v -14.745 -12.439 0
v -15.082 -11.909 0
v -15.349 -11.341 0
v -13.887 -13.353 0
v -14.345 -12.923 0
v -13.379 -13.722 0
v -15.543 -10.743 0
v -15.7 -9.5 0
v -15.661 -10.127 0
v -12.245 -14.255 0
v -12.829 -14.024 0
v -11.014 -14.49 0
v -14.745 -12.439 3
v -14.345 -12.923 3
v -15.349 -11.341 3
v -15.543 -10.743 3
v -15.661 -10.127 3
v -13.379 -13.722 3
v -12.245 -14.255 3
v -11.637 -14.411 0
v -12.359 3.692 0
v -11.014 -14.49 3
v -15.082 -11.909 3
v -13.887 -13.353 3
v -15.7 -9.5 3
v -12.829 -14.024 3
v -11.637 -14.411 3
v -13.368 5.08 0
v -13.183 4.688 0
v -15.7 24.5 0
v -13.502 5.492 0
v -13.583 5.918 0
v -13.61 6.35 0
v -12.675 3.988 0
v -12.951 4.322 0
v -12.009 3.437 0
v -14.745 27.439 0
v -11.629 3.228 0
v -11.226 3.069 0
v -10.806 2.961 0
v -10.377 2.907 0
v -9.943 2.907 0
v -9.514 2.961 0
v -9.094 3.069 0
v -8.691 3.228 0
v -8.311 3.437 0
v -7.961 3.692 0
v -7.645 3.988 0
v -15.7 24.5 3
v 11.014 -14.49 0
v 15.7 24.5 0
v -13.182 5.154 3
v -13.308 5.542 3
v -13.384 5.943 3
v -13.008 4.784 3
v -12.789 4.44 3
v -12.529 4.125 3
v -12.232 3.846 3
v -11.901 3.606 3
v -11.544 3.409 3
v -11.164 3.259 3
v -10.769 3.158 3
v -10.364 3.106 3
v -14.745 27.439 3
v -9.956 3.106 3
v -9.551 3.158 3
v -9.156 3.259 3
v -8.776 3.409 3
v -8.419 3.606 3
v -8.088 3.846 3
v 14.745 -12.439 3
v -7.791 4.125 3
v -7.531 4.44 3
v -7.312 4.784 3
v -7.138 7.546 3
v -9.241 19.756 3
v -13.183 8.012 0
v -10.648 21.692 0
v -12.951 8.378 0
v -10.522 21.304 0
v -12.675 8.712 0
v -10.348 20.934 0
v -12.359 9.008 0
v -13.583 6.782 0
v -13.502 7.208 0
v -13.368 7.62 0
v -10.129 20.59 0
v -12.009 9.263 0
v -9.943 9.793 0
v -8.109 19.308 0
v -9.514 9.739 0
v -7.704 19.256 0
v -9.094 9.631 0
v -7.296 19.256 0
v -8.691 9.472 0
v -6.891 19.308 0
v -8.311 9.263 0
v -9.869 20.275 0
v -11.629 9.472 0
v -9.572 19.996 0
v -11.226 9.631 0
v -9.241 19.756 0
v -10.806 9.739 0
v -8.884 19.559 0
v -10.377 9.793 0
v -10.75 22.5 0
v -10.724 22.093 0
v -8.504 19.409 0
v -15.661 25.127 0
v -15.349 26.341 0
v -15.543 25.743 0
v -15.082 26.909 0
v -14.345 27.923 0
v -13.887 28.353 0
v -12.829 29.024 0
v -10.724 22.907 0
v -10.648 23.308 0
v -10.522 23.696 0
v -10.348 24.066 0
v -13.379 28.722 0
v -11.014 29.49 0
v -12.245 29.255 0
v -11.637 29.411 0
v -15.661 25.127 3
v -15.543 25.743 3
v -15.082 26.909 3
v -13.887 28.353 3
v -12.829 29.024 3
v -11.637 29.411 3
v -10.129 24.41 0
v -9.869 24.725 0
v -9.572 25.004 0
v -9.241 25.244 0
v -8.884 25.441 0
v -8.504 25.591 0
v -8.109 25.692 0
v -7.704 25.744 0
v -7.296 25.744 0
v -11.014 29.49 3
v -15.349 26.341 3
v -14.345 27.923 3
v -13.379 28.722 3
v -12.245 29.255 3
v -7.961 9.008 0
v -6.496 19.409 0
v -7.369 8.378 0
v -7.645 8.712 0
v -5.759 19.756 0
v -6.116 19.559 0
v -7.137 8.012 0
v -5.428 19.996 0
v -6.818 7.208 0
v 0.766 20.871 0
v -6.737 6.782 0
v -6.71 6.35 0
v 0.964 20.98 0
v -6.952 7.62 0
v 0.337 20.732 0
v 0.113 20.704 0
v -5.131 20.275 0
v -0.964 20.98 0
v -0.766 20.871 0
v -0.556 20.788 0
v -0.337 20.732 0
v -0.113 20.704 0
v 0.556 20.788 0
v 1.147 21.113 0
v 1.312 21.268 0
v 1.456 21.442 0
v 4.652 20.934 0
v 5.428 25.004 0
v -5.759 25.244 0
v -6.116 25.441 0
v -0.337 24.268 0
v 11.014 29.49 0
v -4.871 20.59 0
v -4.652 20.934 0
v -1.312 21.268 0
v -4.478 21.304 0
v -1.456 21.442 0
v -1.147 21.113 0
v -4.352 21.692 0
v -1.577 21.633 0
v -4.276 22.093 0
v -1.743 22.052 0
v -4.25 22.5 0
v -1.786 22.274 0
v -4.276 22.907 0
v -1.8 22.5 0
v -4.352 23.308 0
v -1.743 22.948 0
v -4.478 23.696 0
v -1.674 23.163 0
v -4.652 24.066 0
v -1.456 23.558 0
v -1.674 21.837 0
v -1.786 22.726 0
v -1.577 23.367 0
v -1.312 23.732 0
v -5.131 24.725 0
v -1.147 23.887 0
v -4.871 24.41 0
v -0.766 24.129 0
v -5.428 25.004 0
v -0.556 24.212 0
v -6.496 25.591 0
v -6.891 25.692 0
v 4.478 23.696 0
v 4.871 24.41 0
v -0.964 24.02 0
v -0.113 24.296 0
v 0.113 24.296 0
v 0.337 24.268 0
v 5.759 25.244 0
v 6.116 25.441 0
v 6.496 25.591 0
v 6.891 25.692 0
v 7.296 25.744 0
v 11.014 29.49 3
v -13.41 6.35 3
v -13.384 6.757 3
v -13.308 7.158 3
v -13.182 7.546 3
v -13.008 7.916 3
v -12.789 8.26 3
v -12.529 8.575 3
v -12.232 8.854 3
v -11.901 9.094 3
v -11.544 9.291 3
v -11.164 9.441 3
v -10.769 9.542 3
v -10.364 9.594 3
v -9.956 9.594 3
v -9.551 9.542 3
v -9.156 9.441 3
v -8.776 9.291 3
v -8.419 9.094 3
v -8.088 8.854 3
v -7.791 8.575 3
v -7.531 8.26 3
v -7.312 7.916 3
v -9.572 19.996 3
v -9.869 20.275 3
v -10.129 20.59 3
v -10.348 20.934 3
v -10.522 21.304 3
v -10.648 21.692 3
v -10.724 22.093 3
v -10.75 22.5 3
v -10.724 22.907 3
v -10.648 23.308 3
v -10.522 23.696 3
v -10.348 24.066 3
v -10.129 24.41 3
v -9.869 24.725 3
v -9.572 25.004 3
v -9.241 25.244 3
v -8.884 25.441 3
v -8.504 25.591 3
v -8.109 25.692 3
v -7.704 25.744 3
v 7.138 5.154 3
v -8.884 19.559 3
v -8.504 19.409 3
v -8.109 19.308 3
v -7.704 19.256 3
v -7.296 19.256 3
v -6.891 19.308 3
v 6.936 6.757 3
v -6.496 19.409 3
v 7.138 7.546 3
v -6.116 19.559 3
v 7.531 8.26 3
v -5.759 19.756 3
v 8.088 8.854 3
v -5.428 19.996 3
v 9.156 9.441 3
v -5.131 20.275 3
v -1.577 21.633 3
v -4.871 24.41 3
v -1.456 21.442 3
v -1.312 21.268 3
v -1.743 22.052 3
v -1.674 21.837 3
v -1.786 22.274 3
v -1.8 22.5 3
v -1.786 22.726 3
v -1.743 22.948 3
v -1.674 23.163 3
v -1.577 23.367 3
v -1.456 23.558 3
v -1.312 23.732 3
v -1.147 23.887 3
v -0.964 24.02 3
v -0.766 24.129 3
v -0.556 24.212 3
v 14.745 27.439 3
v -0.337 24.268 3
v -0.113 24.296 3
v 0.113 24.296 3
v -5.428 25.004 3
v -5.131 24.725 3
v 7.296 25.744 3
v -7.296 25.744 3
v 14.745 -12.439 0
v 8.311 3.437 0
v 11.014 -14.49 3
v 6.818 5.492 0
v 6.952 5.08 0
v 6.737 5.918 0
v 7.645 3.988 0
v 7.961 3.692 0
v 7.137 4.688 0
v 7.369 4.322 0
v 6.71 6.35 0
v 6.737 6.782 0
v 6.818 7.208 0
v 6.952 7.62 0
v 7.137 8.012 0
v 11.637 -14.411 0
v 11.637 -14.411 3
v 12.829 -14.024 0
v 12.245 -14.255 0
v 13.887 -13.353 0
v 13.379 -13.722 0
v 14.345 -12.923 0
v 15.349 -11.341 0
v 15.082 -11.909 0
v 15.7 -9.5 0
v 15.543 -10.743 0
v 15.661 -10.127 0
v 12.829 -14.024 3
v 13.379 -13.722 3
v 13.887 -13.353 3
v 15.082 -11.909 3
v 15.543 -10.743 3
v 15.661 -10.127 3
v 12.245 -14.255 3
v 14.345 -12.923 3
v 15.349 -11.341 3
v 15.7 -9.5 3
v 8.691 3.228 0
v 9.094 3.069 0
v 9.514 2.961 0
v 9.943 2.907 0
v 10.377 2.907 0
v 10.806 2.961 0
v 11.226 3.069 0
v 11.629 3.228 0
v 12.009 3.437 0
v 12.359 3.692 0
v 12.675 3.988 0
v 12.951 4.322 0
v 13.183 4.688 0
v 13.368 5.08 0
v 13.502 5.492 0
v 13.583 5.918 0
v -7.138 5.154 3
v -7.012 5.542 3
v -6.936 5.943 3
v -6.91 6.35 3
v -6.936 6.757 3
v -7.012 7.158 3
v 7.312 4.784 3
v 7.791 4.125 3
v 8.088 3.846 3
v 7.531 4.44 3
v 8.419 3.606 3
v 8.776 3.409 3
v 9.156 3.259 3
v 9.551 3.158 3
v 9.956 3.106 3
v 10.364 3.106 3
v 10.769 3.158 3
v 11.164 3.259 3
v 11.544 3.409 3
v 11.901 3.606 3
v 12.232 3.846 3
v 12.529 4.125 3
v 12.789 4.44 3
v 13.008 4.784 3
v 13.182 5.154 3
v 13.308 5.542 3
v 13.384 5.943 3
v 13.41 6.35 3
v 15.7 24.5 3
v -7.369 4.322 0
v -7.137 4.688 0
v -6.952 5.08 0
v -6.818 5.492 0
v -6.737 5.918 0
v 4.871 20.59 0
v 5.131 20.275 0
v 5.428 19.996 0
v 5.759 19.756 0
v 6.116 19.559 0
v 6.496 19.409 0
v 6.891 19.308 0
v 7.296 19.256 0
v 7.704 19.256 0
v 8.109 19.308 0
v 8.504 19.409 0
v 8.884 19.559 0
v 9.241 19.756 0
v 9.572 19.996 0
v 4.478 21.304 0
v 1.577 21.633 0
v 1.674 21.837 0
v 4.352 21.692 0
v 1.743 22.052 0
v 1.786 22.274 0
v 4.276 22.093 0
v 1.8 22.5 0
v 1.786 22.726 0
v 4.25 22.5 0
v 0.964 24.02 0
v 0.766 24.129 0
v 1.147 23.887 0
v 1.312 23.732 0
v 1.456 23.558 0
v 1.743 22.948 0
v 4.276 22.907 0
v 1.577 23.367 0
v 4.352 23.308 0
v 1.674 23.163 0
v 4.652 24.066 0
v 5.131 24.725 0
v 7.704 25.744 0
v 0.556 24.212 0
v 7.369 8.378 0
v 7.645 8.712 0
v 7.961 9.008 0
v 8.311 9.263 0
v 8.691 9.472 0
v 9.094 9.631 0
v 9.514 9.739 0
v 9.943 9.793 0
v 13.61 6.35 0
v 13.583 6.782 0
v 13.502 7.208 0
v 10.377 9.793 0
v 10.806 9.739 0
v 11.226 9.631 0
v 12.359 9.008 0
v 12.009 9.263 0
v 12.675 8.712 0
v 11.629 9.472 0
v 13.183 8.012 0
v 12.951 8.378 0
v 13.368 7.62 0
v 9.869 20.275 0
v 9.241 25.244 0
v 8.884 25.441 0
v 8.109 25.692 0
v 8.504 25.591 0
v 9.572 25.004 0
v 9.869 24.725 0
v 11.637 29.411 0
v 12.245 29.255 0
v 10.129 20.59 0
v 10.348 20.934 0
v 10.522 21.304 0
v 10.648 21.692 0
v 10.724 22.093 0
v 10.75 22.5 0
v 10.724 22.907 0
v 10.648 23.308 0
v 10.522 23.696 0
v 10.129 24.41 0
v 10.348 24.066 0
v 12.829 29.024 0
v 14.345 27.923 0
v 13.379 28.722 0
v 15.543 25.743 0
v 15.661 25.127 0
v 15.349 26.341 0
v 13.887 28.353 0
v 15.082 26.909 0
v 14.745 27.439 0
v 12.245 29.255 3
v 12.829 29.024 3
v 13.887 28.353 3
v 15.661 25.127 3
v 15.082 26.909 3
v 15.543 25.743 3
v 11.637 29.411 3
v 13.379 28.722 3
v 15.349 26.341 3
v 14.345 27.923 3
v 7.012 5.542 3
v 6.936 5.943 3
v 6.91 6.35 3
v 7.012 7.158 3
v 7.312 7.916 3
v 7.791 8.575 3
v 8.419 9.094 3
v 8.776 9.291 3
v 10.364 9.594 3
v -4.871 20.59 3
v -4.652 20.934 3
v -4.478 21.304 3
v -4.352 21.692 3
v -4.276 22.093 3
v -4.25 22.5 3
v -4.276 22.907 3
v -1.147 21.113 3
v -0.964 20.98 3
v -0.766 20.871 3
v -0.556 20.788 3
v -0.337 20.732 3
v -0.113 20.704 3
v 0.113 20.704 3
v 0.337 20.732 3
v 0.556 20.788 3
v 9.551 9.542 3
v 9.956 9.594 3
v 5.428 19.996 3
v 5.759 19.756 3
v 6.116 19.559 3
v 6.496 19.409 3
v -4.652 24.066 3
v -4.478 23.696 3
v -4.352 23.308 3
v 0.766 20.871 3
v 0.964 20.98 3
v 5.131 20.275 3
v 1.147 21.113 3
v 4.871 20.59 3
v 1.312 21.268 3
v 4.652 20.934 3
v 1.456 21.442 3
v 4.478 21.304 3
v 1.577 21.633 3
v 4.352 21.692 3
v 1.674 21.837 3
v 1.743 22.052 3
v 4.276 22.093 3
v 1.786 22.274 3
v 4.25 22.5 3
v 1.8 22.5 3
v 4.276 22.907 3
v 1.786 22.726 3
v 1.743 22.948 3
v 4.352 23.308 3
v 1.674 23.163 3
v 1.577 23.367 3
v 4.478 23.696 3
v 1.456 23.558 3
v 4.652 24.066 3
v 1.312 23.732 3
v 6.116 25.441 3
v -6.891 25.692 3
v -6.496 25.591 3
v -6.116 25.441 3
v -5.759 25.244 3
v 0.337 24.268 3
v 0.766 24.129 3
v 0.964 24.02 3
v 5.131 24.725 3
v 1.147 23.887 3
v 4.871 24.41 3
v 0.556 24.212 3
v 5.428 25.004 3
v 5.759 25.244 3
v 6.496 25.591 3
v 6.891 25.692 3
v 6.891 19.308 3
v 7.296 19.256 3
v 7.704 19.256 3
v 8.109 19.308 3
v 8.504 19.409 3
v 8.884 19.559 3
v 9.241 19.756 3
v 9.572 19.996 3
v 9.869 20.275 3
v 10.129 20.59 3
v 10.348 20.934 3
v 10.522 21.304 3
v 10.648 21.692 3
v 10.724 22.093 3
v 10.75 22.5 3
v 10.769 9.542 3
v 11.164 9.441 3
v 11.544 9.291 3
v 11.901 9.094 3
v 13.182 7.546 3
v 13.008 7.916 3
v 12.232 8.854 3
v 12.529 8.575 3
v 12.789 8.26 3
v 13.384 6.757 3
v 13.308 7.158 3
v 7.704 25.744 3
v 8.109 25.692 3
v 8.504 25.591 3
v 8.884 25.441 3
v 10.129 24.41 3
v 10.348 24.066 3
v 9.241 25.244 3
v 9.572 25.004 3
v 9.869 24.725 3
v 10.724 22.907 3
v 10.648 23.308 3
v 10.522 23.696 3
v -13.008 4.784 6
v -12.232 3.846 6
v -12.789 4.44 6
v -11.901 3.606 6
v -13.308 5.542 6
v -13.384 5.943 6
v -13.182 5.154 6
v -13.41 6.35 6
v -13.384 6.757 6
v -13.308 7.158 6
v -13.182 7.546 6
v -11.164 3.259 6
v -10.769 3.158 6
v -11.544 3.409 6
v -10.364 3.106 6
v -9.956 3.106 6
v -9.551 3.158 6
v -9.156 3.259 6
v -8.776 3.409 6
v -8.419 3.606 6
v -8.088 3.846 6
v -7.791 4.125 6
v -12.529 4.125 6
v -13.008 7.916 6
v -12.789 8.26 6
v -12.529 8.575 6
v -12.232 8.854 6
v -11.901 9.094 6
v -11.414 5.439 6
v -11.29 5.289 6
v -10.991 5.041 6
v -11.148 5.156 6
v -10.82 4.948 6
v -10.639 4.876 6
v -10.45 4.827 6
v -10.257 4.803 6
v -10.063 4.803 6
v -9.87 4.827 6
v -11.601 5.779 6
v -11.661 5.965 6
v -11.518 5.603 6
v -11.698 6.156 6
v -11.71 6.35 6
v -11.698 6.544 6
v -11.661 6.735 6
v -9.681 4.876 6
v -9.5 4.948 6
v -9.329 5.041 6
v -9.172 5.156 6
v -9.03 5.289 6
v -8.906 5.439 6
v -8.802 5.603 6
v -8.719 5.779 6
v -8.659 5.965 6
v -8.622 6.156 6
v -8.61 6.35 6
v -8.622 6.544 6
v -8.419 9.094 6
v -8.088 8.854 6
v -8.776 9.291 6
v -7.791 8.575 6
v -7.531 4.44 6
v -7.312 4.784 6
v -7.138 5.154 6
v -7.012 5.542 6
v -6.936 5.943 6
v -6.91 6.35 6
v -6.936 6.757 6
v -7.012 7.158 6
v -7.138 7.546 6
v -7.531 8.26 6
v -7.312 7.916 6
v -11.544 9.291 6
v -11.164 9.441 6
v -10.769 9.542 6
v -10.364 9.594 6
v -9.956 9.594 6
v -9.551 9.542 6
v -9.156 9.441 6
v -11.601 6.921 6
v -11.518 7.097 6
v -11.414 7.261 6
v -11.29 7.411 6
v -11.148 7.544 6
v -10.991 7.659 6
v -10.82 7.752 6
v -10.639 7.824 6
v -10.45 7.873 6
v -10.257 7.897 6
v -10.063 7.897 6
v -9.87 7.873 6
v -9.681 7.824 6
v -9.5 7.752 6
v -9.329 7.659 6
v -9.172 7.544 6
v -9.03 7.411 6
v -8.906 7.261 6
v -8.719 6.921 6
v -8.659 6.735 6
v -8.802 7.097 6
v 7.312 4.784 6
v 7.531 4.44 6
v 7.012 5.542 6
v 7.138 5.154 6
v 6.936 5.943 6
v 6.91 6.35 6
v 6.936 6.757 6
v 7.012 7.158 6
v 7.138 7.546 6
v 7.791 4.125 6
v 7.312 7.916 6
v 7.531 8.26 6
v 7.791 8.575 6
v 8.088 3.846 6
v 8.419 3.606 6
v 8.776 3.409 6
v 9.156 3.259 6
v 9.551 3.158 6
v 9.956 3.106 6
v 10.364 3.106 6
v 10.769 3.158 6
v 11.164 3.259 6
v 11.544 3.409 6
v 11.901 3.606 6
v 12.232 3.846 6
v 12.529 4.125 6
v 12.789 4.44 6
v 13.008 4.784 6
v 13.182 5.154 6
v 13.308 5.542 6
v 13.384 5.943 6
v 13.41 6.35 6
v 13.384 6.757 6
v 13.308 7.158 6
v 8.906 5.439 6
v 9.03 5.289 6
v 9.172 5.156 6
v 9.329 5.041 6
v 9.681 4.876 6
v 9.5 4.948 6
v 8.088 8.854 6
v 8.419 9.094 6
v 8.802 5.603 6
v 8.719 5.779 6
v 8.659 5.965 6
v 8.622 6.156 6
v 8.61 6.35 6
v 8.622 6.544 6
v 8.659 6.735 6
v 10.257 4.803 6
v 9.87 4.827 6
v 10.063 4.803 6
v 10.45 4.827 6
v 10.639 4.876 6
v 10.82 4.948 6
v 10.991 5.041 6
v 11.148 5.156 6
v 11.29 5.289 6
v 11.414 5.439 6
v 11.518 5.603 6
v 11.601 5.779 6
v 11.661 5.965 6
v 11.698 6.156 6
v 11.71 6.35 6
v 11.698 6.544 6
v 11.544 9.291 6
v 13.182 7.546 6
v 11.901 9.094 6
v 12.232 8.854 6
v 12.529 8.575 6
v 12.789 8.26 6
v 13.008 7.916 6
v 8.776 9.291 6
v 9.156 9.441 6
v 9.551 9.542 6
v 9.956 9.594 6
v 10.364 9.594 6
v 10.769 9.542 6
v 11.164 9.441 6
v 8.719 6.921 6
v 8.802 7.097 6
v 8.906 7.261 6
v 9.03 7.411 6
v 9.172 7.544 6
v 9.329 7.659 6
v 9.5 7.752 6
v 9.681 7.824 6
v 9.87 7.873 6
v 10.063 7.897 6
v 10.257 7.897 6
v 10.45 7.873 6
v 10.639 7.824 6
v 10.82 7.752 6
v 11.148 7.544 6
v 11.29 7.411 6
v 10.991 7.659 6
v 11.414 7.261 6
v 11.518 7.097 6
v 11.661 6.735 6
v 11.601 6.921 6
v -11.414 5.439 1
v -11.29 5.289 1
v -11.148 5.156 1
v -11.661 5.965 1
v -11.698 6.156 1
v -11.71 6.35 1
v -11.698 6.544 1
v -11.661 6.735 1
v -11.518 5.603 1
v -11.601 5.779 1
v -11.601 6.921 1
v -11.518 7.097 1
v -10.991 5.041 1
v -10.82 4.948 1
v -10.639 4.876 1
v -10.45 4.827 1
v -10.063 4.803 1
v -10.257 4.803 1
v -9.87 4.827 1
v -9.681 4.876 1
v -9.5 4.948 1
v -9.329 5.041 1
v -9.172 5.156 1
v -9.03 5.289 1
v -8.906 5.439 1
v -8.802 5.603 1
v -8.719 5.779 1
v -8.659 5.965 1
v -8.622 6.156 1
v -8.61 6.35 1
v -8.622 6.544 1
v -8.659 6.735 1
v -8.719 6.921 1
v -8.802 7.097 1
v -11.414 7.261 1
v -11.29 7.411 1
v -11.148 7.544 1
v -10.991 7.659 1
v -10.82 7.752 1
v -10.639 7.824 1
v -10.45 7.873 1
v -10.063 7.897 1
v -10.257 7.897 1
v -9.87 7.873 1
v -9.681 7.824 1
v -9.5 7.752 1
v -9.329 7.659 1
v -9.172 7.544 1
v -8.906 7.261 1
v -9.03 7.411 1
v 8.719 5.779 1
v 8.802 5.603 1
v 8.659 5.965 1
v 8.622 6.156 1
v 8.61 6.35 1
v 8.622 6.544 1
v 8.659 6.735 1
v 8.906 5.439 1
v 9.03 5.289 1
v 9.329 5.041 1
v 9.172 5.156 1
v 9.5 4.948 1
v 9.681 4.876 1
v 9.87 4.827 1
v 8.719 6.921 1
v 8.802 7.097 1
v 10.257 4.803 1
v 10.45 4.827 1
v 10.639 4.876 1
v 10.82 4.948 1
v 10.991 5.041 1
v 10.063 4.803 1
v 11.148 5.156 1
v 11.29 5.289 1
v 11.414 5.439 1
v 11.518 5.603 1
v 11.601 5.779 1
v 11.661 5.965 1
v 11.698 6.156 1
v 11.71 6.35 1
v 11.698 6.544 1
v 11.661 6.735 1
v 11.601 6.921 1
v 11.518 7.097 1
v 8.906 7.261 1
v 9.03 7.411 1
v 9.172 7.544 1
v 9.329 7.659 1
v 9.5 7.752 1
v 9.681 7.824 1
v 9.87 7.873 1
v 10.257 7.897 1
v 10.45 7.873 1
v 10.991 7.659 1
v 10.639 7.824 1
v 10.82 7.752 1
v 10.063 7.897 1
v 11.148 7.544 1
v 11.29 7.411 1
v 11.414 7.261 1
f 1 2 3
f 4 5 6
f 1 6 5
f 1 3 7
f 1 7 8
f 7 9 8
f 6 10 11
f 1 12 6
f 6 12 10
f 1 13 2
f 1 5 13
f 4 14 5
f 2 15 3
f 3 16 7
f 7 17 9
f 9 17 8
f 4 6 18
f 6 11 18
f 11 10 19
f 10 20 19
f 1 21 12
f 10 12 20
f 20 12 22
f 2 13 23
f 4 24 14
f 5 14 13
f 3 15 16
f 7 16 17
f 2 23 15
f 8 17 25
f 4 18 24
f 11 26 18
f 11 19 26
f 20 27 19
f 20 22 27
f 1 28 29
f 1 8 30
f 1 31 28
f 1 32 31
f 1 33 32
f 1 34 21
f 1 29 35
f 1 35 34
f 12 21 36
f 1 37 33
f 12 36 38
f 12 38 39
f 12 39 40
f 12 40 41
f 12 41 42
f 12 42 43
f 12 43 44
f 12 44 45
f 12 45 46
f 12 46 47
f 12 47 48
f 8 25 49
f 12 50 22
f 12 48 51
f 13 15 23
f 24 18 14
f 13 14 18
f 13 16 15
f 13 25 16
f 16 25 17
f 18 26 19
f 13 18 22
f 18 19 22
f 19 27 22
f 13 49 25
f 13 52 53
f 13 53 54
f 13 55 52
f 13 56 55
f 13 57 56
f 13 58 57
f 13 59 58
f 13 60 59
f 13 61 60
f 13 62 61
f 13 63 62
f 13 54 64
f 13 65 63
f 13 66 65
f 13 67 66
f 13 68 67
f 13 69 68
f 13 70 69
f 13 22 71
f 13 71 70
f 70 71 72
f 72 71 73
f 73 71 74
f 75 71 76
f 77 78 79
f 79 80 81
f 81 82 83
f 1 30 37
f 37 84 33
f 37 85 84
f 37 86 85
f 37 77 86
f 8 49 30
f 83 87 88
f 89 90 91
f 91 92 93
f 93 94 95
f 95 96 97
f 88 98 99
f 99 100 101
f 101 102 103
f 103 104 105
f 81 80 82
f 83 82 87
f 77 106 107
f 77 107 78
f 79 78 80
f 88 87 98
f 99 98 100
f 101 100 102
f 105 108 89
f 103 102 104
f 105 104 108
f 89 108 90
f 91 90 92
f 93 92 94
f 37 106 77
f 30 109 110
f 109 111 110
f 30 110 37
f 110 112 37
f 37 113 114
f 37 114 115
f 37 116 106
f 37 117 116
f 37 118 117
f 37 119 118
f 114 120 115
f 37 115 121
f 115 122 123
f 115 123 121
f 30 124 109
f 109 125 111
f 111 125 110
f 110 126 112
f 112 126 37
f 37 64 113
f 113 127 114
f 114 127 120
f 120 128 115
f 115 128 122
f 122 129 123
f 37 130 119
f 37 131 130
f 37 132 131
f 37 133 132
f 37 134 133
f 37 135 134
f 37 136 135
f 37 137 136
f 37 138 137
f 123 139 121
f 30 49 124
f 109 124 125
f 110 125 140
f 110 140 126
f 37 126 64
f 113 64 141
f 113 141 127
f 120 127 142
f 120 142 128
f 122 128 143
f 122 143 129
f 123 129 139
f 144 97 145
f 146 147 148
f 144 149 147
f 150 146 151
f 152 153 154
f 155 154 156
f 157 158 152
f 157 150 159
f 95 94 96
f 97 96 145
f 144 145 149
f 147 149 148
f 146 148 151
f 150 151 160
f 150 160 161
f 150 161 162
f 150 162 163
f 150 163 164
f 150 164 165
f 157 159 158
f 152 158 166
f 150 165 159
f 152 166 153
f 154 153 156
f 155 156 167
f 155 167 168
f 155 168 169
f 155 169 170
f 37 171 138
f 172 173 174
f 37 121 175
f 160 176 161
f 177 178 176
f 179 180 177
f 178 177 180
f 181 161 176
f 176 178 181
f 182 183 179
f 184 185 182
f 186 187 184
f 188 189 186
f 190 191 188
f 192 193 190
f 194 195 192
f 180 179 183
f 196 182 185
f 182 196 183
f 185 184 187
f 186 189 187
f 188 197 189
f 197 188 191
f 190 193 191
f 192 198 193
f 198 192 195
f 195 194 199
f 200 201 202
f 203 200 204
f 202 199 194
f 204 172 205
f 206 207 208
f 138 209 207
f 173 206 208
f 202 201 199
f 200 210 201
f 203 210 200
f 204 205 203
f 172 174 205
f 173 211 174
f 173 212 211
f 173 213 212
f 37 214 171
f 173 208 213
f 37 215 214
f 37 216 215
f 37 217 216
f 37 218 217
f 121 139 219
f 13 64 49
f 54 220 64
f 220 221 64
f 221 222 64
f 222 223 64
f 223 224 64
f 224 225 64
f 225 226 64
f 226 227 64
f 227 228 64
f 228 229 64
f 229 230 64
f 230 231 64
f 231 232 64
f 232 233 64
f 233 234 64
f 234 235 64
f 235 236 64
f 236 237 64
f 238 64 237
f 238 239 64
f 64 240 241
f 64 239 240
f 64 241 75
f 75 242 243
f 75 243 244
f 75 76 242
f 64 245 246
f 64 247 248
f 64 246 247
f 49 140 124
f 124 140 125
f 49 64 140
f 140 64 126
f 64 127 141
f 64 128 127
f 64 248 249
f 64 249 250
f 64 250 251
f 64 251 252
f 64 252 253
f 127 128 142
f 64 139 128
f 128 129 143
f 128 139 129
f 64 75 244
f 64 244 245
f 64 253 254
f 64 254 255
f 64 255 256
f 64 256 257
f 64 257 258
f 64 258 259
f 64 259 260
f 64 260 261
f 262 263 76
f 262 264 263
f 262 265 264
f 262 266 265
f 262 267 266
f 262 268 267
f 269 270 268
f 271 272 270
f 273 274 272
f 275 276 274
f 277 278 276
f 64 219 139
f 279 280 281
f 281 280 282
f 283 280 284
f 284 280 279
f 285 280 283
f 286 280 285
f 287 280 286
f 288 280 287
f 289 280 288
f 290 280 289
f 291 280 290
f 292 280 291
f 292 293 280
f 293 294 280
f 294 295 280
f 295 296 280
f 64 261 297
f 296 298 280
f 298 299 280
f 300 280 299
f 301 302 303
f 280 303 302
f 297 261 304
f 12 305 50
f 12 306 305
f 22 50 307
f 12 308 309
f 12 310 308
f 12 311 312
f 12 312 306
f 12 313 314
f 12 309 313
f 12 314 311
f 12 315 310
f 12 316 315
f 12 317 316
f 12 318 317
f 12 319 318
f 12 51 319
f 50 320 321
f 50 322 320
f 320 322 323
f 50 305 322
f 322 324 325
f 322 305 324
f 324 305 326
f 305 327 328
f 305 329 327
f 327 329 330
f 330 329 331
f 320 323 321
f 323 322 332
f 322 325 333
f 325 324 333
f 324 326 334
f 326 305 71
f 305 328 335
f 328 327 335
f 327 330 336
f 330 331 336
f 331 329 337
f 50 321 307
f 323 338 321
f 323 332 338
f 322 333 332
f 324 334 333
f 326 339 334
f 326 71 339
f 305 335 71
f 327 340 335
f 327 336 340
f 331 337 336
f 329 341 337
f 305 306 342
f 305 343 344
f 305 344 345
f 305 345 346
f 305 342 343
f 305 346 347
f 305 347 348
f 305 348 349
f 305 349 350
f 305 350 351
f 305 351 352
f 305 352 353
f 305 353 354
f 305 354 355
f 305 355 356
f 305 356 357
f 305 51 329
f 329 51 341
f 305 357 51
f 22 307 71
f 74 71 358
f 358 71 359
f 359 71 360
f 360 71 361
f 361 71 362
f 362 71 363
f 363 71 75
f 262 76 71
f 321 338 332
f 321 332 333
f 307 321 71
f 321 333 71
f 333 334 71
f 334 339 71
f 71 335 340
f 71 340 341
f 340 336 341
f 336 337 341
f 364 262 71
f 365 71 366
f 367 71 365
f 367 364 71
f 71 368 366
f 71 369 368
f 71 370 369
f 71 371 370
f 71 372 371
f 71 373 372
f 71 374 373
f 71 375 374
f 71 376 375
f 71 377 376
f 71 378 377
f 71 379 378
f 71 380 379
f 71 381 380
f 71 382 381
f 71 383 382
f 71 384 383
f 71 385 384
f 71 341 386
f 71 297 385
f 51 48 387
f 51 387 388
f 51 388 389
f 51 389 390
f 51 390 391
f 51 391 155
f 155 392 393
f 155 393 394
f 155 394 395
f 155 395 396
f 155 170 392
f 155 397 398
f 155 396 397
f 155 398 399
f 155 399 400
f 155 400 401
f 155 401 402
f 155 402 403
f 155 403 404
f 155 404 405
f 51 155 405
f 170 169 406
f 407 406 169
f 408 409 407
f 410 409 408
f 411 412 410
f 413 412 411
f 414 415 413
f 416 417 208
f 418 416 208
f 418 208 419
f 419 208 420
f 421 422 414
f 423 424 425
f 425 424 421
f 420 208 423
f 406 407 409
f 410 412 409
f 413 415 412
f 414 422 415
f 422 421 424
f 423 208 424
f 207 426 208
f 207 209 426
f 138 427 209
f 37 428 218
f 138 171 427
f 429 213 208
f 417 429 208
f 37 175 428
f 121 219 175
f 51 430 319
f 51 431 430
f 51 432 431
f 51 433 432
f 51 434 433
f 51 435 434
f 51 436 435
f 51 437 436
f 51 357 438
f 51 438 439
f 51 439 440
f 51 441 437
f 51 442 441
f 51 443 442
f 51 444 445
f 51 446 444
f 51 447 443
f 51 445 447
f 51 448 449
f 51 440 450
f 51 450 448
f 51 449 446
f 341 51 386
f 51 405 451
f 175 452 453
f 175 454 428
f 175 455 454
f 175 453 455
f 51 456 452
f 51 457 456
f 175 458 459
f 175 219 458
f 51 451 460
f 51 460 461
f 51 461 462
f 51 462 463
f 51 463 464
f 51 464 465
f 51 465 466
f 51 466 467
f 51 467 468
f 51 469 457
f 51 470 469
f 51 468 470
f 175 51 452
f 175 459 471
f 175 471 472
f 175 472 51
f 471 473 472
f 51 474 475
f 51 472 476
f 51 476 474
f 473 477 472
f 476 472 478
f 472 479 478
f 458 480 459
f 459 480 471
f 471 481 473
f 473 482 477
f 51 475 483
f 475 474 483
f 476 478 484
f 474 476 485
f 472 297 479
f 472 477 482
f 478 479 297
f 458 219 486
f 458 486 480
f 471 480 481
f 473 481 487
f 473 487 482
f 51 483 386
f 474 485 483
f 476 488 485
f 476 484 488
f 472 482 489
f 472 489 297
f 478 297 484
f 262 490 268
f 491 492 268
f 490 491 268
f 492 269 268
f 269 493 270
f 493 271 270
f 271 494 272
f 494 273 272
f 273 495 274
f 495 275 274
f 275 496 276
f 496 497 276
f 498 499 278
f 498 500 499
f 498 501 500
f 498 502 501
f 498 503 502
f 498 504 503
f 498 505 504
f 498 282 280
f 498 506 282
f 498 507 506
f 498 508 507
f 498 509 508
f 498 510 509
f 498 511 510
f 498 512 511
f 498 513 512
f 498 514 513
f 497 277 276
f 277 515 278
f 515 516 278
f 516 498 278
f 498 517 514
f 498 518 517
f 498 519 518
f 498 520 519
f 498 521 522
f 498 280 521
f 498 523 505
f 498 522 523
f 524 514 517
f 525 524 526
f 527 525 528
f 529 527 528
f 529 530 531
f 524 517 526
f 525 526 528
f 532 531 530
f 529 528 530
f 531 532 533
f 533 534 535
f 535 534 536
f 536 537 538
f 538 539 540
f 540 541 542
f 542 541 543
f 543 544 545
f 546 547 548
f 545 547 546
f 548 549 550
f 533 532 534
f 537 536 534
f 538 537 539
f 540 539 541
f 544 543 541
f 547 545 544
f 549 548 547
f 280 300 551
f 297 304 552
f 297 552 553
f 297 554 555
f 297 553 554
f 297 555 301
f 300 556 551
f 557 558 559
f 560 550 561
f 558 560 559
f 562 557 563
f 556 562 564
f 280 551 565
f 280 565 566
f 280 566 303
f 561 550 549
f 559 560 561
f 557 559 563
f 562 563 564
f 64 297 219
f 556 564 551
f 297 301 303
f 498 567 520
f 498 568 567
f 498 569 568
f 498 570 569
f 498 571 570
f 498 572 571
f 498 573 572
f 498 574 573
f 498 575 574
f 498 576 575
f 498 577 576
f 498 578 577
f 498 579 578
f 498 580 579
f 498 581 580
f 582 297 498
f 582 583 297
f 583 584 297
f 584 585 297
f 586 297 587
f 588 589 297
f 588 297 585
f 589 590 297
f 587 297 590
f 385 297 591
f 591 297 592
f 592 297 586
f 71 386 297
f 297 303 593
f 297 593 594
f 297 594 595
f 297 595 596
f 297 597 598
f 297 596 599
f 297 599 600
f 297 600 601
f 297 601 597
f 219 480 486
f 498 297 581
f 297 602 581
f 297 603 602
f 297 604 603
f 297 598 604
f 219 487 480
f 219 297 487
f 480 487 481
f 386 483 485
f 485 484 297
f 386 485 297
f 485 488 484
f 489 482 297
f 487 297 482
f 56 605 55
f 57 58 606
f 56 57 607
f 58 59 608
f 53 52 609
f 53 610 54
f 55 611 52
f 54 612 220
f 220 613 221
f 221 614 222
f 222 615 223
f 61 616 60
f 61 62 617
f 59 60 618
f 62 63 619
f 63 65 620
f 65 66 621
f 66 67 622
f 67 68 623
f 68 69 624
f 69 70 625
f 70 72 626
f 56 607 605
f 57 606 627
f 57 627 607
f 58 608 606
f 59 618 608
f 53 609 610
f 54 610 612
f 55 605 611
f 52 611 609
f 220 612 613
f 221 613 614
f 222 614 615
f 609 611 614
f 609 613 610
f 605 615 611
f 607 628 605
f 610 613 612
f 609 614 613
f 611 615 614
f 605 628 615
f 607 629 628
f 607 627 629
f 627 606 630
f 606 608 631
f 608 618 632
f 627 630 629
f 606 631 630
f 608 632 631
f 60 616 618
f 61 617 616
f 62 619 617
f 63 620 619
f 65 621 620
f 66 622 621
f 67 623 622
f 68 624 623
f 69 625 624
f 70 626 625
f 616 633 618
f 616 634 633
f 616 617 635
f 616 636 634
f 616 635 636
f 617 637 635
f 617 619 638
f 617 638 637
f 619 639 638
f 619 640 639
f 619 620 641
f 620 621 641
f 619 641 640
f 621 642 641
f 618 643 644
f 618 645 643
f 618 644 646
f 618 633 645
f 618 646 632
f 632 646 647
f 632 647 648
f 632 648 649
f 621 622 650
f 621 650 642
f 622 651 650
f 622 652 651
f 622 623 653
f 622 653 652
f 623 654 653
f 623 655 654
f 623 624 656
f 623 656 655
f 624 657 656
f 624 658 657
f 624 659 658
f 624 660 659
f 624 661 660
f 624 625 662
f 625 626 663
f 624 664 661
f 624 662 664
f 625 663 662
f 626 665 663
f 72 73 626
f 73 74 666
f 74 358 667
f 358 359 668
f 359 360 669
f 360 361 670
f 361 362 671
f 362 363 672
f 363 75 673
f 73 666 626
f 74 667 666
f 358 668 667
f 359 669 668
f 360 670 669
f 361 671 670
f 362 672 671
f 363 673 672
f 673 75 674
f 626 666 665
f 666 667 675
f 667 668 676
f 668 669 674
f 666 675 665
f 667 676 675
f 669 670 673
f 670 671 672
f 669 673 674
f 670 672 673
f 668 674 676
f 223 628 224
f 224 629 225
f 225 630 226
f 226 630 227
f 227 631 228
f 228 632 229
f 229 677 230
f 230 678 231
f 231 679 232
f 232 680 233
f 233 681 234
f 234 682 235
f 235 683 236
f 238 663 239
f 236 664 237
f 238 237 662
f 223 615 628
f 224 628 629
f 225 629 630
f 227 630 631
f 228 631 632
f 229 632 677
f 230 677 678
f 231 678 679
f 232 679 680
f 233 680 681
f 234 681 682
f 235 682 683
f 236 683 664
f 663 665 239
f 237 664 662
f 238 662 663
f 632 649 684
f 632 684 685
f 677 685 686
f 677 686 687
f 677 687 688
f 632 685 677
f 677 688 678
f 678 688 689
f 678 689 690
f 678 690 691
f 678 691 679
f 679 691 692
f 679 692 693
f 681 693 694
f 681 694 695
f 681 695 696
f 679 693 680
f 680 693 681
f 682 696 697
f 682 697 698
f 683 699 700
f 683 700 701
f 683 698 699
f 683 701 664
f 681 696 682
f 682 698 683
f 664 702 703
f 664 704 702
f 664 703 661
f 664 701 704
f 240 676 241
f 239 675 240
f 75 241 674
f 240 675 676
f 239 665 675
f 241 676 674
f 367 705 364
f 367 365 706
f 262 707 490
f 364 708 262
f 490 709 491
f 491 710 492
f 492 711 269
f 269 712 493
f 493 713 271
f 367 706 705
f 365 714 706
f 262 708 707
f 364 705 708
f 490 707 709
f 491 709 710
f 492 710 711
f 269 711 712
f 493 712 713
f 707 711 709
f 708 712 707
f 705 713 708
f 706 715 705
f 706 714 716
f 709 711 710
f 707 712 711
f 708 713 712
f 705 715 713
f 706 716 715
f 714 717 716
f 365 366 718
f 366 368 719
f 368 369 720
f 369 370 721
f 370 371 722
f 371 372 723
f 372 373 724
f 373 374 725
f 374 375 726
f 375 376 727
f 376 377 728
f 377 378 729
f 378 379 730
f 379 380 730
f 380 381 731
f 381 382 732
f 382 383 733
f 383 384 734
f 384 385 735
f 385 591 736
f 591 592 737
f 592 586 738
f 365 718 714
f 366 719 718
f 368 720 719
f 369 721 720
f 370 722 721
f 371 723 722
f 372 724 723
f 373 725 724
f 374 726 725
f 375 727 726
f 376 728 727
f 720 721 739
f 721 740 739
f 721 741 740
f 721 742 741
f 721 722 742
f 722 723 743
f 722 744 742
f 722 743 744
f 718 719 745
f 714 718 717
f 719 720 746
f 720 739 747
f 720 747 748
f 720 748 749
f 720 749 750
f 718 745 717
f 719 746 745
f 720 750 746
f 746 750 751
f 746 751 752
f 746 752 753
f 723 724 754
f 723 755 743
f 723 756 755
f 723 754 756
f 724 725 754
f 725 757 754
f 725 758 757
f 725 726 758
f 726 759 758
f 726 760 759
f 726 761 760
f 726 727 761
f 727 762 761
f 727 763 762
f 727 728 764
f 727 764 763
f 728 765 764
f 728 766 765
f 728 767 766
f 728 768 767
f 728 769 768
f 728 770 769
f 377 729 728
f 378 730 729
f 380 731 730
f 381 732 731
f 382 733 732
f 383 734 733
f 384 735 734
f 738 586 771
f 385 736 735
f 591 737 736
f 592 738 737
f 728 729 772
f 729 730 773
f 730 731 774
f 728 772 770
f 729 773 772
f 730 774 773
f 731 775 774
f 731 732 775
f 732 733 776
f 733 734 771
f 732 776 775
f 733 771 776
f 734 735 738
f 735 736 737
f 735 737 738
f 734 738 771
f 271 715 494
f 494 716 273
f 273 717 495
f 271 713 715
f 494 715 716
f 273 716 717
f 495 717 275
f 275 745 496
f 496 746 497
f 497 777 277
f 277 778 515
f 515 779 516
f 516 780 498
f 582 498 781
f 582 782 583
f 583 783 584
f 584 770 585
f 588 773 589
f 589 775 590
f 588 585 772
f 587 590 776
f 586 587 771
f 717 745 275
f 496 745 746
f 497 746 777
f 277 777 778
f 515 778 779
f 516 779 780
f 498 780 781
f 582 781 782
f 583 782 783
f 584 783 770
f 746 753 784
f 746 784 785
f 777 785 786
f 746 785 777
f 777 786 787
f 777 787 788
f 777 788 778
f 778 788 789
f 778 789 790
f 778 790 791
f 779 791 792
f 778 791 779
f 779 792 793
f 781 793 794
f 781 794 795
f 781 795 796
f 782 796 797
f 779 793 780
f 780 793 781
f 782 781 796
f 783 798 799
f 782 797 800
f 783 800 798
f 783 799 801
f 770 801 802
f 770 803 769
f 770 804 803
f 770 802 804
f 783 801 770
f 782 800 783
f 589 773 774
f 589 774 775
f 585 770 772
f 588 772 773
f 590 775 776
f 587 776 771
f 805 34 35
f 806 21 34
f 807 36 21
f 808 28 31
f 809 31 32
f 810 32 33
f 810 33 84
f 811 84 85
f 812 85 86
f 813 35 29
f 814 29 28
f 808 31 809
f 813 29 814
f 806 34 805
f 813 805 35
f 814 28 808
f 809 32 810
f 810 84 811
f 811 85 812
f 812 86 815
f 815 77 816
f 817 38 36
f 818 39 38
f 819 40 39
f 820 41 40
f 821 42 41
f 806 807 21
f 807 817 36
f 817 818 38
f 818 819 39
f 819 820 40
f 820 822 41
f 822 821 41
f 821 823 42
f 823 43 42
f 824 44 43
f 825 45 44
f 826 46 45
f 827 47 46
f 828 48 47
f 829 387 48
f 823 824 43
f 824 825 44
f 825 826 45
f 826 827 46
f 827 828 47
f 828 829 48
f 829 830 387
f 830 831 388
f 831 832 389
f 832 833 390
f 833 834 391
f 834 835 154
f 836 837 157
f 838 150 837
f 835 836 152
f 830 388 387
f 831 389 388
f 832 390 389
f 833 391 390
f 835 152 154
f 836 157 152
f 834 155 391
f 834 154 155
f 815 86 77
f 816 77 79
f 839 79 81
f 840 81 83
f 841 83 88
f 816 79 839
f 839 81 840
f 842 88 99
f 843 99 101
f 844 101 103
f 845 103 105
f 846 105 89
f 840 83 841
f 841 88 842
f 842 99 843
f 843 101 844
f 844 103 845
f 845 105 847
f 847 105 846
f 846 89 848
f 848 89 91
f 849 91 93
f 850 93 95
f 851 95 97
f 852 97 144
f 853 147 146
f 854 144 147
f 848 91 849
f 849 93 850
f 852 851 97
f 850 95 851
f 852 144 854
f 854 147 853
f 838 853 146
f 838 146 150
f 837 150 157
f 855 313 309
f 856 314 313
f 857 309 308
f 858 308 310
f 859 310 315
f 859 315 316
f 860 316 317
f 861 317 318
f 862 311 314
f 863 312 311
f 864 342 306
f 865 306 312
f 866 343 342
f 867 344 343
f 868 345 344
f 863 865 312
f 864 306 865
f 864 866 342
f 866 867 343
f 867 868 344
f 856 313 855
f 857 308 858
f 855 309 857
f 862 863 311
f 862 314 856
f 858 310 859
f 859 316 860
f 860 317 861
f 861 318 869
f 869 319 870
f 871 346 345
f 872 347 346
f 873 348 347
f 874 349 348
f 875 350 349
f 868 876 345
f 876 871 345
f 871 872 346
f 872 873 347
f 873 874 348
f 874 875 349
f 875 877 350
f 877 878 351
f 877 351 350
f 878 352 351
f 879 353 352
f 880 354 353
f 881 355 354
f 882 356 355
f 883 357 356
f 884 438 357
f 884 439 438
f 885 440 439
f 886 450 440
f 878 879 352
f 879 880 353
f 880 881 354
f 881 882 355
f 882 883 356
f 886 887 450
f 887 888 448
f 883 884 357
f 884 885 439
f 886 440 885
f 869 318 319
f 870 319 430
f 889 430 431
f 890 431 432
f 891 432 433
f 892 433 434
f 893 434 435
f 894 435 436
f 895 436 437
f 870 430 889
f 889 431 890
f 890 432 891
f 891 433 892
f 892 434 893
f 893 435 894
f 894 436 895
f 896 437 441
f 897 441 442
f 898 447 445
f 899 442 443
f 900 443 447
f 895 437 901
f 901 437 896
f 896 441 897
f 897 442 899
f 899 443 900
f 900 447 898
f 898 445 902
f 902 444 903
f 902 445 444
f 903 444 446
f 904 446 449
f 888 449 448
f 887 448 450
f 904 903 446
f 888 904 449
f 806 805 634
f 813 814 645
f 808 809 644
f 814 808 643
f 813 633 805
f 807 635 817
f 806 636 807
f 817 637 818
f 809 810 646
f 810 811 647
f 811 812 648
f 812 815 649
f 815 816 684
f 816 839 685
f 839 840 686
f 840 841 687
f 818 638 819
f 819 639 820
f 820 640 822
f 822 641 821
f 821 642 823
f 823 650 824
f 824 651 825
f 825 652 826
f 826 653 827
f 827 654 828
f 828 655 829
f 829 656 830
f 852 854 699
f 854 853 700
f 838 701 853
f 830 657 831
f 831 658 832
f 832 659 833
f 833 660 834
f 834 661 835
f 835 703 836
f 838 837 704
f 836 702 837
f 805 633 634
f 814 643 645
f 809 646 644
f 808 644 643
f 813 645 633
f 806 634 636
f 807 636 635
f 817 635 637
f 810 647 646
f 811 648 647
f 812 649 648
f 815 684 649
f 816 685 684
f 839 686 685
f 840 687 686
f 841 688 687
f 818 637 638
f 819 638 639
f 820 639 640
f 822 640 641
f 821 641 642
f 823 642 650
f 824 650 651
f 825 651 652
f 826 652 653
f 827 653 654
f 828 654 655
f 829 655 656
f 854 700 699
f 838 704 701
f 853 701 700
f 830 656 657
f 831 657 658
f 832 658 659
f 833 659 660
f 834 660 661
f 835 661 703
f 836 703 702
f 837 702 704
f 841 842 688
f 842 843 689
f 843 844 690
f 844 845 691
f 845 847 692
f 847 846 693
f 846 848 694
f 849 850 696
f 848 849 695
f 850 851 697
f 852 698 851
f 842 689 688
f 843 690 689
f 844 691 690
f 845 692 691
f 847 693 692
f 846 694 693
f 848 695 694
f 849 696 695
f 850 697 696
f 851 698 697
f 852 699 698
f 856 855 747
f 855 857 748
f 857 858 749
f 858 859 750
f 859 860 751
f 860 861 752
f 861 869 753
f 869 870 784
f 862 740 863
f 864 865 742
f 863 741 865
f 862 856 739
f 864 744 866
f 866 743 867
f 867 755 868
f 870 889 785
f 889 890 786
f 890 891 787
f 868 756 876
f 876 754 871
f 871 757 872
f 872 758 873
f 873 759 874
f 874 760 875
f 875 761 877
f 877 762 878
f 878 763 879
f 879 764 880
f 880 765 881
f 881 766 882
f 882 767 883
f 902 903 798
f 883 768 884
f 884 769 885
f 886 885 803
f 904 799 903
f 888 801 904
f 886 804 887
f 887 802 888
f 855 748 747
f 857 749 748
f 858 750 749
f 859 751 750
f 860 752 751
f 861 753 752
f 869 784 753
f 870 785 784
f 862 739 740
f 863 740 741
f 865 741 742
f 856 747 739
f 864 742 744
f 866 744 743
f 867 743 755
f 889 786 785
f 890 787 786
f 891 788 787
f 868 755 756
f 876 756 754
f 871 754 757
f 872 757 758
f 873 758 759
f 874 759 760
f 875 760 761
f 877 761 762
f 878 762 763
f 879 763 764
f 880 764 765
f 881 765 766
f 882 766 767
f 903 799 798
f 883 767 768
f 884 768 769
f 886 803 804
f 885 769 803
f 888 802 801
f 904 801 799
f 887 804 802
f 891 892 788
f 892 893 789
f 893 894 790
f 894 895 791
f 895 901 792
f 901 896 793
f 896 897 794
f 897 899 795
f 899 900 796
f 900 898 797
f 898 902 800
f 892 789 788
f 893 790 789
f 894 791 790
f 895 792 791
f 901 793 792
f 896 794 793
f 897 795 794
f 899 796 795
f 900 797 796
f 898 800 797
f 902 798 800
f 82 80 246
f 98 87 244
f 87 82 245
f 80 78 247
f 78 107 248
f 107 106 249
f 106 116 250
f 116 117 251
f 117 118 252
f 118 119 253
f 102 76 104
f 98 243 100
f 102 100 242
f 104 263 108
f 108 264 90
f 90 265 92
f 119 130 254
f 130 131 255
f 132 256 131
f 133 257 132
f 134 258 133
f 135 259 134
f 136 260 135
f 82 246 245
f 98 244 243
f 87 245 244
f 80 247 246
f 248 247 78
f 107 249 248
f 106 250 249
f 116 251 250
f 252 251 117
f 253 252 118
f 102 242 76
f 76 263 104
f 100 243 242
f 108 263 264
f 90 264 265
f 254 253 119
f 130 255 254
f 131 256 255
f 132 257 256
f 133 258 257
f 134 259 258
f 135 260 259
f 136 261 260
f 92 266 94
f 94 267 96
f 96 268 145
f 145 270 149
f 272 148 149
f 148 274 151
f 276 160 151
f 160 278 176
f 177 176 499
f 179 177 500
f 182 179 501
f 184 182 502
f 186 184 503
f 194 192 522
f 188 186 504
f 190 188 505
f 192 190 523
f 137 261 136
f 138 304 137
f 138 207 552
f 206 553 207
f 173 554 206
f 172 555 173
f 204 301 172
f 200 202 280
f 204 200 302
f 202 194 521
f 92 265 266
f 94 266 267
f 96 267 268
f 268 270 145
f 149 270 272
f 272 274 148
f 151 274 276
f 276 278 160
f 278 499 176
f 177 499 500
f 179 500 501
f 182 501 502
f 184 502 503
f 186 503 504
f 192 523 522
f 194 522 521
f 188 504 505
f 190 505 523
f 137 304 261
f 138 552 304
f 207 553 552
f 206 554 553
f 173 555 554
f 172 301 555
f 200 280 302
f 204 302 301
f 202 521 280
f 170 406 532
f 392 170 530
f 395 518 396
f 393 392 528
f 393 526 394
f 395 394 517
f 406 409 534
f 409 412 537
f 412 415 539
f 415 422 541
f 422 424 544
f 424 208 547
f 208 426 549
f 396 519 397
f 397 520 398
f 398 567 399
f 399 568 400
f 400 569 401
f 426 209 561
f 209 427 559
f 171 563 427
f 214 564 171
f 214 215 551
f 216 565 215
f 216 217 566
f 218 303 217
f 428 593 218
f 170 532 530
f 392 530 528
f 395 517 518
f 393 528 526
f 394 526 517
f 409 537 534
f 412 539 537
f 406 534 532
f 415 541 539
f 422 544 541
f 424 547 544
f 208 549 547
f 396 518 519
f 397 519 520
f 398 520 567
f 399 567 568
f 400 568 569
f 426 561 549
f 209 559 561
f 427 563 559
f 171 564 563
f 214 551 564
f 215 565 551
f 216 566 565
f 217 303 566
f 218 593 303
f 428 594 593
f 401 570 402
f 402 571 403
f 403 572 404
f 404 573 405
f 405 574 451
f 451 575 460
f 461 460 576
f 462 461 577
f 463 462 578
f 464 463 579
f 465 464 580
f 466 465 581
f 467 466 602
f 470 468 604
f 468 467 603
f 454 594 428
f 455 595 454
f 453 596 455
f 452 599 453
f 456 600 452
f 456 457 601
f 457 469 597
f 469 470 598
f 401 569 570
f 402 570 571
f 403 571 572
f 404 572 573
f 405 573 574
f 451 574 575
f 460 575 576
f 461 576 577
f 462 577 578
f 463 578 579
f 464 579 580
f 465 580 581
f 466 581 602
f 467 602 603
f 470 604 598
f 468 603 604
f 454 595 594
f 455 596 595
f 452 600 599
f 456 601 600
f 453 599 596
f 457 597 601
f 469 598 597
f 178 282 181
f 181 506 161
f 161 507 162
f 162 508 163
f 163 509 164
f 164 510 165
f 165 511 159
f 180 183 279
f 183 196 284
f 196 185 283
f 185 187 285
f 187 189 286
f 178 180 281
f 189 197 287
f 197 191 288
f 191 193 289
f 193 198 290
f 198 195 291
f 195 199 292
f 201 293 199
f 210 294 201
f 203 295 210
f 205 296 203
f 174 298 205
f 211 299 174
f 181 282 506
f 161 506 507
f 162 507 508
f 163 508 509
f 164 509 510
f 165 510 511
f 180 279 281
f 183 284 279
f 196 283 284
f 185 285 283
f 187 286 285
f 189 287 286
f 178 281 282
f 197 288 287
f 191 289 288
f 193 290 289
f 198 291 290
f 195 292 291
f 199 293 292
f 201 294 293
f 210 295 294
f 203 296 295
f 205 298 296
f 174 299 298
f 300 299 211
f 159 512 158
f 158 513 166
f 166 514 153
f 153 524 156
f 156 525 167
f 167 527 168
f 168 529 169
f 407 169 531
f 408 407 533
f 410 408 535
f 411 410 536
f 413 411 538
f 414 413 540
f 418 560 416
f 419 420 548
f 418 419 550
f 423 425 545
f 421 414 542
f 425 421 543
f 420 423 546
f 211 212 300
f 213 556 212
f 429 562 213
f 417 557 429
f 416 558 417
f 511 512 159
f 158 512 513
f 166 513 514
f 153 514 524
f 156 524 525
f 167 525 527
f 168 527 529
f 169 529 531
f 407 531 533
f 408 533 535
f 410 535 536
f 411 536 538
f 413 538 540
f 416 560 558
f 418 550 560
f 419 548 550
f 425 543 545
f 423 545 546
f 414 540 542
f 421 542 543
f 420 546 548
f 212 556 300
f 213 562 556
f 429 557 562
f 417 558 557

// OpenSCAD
$fn = 50;

difference() {
	union() {
		translate(v = [0.0, 7.5, 0]) {
			hull() {
				translate(v = [-10.7, 17.0, 0]) {
					cylinder(h = 3, r = 5);
				}
				translate(v = [10.7, 17.0, 0]) {
					cylinder(h = 3, r = 5);
				}
				translate(v = [-10.7, -17.0, 0]) {
					cylinder(h = 3, r = 5);
				}
				translate(v = [10.7, -17.0, 0]) {
					cylinder(h = 3, r = 5);
				}
			}
		}
		translate(v = [-10.16, 6.35, 3.0]) {
			cylinder(h = 3, r = 3.25);
		}
		translate(v = [10.16, 6.35, 3.0]) {
			cylinder(h = 3, r = 3.25);
		}
	}
	union() {
		translate(v = [-10.16, 6.35, 0]) {
			rotate(a = [0, 180, 0]) {
				difference() {
					union() {
						translate(v = [0, 0, -6.0]) {
							cylinder(h = 6, r = 1.25);
						}
						translate(v = [0, 0, -1.0]) {
							cylinder(h = 1.0, r1 = 1.55, r2 = 3.45);
						}
						translate(v = [0, 0, -6.0]) {
							cylinder(h = 6, r = 1.55);
						}
						translate(v = [0, 0, -6.0]) {
							cylinder(h = 6, r = 1.25);
						}
					}
					union();
				}
			}
		}
		translate(v = [10.16, 6.35, 0]) {
			rotate(a = [0, 180, 0]) {
				difference() {
					union() {
						translate(v = [0, 0, -6.0]) {
							cylinder(h = 6, r = 1.25);
						}
						translate(v = [0, 0, -1.0]) {
							cylinder(h = 1.0, r1 = 1.55, r2 = 3.45);
						}
						translate(v = [0, 0, -6.0]) {
							cylinder(h = 6, r = 1.55);
						}
						translate(v = [0, 0, -6.0]) {
							cylinder(h = 6, r = 1.25);
						}
					}
					union();
				}
			}
		}
		translate(v = [-7.5, 22.5, -1]) {
			cylinder(h = 5, r = 3.25);
		}
		translate(v = [7.5, 22.5, -1]) {
			cylinder(h = 5, r = 3.25);
		}
		translate(v = [0.0, 22.5, -1]) {
			cylinder(h = 5, r = 1.8);
		}
	}
}
